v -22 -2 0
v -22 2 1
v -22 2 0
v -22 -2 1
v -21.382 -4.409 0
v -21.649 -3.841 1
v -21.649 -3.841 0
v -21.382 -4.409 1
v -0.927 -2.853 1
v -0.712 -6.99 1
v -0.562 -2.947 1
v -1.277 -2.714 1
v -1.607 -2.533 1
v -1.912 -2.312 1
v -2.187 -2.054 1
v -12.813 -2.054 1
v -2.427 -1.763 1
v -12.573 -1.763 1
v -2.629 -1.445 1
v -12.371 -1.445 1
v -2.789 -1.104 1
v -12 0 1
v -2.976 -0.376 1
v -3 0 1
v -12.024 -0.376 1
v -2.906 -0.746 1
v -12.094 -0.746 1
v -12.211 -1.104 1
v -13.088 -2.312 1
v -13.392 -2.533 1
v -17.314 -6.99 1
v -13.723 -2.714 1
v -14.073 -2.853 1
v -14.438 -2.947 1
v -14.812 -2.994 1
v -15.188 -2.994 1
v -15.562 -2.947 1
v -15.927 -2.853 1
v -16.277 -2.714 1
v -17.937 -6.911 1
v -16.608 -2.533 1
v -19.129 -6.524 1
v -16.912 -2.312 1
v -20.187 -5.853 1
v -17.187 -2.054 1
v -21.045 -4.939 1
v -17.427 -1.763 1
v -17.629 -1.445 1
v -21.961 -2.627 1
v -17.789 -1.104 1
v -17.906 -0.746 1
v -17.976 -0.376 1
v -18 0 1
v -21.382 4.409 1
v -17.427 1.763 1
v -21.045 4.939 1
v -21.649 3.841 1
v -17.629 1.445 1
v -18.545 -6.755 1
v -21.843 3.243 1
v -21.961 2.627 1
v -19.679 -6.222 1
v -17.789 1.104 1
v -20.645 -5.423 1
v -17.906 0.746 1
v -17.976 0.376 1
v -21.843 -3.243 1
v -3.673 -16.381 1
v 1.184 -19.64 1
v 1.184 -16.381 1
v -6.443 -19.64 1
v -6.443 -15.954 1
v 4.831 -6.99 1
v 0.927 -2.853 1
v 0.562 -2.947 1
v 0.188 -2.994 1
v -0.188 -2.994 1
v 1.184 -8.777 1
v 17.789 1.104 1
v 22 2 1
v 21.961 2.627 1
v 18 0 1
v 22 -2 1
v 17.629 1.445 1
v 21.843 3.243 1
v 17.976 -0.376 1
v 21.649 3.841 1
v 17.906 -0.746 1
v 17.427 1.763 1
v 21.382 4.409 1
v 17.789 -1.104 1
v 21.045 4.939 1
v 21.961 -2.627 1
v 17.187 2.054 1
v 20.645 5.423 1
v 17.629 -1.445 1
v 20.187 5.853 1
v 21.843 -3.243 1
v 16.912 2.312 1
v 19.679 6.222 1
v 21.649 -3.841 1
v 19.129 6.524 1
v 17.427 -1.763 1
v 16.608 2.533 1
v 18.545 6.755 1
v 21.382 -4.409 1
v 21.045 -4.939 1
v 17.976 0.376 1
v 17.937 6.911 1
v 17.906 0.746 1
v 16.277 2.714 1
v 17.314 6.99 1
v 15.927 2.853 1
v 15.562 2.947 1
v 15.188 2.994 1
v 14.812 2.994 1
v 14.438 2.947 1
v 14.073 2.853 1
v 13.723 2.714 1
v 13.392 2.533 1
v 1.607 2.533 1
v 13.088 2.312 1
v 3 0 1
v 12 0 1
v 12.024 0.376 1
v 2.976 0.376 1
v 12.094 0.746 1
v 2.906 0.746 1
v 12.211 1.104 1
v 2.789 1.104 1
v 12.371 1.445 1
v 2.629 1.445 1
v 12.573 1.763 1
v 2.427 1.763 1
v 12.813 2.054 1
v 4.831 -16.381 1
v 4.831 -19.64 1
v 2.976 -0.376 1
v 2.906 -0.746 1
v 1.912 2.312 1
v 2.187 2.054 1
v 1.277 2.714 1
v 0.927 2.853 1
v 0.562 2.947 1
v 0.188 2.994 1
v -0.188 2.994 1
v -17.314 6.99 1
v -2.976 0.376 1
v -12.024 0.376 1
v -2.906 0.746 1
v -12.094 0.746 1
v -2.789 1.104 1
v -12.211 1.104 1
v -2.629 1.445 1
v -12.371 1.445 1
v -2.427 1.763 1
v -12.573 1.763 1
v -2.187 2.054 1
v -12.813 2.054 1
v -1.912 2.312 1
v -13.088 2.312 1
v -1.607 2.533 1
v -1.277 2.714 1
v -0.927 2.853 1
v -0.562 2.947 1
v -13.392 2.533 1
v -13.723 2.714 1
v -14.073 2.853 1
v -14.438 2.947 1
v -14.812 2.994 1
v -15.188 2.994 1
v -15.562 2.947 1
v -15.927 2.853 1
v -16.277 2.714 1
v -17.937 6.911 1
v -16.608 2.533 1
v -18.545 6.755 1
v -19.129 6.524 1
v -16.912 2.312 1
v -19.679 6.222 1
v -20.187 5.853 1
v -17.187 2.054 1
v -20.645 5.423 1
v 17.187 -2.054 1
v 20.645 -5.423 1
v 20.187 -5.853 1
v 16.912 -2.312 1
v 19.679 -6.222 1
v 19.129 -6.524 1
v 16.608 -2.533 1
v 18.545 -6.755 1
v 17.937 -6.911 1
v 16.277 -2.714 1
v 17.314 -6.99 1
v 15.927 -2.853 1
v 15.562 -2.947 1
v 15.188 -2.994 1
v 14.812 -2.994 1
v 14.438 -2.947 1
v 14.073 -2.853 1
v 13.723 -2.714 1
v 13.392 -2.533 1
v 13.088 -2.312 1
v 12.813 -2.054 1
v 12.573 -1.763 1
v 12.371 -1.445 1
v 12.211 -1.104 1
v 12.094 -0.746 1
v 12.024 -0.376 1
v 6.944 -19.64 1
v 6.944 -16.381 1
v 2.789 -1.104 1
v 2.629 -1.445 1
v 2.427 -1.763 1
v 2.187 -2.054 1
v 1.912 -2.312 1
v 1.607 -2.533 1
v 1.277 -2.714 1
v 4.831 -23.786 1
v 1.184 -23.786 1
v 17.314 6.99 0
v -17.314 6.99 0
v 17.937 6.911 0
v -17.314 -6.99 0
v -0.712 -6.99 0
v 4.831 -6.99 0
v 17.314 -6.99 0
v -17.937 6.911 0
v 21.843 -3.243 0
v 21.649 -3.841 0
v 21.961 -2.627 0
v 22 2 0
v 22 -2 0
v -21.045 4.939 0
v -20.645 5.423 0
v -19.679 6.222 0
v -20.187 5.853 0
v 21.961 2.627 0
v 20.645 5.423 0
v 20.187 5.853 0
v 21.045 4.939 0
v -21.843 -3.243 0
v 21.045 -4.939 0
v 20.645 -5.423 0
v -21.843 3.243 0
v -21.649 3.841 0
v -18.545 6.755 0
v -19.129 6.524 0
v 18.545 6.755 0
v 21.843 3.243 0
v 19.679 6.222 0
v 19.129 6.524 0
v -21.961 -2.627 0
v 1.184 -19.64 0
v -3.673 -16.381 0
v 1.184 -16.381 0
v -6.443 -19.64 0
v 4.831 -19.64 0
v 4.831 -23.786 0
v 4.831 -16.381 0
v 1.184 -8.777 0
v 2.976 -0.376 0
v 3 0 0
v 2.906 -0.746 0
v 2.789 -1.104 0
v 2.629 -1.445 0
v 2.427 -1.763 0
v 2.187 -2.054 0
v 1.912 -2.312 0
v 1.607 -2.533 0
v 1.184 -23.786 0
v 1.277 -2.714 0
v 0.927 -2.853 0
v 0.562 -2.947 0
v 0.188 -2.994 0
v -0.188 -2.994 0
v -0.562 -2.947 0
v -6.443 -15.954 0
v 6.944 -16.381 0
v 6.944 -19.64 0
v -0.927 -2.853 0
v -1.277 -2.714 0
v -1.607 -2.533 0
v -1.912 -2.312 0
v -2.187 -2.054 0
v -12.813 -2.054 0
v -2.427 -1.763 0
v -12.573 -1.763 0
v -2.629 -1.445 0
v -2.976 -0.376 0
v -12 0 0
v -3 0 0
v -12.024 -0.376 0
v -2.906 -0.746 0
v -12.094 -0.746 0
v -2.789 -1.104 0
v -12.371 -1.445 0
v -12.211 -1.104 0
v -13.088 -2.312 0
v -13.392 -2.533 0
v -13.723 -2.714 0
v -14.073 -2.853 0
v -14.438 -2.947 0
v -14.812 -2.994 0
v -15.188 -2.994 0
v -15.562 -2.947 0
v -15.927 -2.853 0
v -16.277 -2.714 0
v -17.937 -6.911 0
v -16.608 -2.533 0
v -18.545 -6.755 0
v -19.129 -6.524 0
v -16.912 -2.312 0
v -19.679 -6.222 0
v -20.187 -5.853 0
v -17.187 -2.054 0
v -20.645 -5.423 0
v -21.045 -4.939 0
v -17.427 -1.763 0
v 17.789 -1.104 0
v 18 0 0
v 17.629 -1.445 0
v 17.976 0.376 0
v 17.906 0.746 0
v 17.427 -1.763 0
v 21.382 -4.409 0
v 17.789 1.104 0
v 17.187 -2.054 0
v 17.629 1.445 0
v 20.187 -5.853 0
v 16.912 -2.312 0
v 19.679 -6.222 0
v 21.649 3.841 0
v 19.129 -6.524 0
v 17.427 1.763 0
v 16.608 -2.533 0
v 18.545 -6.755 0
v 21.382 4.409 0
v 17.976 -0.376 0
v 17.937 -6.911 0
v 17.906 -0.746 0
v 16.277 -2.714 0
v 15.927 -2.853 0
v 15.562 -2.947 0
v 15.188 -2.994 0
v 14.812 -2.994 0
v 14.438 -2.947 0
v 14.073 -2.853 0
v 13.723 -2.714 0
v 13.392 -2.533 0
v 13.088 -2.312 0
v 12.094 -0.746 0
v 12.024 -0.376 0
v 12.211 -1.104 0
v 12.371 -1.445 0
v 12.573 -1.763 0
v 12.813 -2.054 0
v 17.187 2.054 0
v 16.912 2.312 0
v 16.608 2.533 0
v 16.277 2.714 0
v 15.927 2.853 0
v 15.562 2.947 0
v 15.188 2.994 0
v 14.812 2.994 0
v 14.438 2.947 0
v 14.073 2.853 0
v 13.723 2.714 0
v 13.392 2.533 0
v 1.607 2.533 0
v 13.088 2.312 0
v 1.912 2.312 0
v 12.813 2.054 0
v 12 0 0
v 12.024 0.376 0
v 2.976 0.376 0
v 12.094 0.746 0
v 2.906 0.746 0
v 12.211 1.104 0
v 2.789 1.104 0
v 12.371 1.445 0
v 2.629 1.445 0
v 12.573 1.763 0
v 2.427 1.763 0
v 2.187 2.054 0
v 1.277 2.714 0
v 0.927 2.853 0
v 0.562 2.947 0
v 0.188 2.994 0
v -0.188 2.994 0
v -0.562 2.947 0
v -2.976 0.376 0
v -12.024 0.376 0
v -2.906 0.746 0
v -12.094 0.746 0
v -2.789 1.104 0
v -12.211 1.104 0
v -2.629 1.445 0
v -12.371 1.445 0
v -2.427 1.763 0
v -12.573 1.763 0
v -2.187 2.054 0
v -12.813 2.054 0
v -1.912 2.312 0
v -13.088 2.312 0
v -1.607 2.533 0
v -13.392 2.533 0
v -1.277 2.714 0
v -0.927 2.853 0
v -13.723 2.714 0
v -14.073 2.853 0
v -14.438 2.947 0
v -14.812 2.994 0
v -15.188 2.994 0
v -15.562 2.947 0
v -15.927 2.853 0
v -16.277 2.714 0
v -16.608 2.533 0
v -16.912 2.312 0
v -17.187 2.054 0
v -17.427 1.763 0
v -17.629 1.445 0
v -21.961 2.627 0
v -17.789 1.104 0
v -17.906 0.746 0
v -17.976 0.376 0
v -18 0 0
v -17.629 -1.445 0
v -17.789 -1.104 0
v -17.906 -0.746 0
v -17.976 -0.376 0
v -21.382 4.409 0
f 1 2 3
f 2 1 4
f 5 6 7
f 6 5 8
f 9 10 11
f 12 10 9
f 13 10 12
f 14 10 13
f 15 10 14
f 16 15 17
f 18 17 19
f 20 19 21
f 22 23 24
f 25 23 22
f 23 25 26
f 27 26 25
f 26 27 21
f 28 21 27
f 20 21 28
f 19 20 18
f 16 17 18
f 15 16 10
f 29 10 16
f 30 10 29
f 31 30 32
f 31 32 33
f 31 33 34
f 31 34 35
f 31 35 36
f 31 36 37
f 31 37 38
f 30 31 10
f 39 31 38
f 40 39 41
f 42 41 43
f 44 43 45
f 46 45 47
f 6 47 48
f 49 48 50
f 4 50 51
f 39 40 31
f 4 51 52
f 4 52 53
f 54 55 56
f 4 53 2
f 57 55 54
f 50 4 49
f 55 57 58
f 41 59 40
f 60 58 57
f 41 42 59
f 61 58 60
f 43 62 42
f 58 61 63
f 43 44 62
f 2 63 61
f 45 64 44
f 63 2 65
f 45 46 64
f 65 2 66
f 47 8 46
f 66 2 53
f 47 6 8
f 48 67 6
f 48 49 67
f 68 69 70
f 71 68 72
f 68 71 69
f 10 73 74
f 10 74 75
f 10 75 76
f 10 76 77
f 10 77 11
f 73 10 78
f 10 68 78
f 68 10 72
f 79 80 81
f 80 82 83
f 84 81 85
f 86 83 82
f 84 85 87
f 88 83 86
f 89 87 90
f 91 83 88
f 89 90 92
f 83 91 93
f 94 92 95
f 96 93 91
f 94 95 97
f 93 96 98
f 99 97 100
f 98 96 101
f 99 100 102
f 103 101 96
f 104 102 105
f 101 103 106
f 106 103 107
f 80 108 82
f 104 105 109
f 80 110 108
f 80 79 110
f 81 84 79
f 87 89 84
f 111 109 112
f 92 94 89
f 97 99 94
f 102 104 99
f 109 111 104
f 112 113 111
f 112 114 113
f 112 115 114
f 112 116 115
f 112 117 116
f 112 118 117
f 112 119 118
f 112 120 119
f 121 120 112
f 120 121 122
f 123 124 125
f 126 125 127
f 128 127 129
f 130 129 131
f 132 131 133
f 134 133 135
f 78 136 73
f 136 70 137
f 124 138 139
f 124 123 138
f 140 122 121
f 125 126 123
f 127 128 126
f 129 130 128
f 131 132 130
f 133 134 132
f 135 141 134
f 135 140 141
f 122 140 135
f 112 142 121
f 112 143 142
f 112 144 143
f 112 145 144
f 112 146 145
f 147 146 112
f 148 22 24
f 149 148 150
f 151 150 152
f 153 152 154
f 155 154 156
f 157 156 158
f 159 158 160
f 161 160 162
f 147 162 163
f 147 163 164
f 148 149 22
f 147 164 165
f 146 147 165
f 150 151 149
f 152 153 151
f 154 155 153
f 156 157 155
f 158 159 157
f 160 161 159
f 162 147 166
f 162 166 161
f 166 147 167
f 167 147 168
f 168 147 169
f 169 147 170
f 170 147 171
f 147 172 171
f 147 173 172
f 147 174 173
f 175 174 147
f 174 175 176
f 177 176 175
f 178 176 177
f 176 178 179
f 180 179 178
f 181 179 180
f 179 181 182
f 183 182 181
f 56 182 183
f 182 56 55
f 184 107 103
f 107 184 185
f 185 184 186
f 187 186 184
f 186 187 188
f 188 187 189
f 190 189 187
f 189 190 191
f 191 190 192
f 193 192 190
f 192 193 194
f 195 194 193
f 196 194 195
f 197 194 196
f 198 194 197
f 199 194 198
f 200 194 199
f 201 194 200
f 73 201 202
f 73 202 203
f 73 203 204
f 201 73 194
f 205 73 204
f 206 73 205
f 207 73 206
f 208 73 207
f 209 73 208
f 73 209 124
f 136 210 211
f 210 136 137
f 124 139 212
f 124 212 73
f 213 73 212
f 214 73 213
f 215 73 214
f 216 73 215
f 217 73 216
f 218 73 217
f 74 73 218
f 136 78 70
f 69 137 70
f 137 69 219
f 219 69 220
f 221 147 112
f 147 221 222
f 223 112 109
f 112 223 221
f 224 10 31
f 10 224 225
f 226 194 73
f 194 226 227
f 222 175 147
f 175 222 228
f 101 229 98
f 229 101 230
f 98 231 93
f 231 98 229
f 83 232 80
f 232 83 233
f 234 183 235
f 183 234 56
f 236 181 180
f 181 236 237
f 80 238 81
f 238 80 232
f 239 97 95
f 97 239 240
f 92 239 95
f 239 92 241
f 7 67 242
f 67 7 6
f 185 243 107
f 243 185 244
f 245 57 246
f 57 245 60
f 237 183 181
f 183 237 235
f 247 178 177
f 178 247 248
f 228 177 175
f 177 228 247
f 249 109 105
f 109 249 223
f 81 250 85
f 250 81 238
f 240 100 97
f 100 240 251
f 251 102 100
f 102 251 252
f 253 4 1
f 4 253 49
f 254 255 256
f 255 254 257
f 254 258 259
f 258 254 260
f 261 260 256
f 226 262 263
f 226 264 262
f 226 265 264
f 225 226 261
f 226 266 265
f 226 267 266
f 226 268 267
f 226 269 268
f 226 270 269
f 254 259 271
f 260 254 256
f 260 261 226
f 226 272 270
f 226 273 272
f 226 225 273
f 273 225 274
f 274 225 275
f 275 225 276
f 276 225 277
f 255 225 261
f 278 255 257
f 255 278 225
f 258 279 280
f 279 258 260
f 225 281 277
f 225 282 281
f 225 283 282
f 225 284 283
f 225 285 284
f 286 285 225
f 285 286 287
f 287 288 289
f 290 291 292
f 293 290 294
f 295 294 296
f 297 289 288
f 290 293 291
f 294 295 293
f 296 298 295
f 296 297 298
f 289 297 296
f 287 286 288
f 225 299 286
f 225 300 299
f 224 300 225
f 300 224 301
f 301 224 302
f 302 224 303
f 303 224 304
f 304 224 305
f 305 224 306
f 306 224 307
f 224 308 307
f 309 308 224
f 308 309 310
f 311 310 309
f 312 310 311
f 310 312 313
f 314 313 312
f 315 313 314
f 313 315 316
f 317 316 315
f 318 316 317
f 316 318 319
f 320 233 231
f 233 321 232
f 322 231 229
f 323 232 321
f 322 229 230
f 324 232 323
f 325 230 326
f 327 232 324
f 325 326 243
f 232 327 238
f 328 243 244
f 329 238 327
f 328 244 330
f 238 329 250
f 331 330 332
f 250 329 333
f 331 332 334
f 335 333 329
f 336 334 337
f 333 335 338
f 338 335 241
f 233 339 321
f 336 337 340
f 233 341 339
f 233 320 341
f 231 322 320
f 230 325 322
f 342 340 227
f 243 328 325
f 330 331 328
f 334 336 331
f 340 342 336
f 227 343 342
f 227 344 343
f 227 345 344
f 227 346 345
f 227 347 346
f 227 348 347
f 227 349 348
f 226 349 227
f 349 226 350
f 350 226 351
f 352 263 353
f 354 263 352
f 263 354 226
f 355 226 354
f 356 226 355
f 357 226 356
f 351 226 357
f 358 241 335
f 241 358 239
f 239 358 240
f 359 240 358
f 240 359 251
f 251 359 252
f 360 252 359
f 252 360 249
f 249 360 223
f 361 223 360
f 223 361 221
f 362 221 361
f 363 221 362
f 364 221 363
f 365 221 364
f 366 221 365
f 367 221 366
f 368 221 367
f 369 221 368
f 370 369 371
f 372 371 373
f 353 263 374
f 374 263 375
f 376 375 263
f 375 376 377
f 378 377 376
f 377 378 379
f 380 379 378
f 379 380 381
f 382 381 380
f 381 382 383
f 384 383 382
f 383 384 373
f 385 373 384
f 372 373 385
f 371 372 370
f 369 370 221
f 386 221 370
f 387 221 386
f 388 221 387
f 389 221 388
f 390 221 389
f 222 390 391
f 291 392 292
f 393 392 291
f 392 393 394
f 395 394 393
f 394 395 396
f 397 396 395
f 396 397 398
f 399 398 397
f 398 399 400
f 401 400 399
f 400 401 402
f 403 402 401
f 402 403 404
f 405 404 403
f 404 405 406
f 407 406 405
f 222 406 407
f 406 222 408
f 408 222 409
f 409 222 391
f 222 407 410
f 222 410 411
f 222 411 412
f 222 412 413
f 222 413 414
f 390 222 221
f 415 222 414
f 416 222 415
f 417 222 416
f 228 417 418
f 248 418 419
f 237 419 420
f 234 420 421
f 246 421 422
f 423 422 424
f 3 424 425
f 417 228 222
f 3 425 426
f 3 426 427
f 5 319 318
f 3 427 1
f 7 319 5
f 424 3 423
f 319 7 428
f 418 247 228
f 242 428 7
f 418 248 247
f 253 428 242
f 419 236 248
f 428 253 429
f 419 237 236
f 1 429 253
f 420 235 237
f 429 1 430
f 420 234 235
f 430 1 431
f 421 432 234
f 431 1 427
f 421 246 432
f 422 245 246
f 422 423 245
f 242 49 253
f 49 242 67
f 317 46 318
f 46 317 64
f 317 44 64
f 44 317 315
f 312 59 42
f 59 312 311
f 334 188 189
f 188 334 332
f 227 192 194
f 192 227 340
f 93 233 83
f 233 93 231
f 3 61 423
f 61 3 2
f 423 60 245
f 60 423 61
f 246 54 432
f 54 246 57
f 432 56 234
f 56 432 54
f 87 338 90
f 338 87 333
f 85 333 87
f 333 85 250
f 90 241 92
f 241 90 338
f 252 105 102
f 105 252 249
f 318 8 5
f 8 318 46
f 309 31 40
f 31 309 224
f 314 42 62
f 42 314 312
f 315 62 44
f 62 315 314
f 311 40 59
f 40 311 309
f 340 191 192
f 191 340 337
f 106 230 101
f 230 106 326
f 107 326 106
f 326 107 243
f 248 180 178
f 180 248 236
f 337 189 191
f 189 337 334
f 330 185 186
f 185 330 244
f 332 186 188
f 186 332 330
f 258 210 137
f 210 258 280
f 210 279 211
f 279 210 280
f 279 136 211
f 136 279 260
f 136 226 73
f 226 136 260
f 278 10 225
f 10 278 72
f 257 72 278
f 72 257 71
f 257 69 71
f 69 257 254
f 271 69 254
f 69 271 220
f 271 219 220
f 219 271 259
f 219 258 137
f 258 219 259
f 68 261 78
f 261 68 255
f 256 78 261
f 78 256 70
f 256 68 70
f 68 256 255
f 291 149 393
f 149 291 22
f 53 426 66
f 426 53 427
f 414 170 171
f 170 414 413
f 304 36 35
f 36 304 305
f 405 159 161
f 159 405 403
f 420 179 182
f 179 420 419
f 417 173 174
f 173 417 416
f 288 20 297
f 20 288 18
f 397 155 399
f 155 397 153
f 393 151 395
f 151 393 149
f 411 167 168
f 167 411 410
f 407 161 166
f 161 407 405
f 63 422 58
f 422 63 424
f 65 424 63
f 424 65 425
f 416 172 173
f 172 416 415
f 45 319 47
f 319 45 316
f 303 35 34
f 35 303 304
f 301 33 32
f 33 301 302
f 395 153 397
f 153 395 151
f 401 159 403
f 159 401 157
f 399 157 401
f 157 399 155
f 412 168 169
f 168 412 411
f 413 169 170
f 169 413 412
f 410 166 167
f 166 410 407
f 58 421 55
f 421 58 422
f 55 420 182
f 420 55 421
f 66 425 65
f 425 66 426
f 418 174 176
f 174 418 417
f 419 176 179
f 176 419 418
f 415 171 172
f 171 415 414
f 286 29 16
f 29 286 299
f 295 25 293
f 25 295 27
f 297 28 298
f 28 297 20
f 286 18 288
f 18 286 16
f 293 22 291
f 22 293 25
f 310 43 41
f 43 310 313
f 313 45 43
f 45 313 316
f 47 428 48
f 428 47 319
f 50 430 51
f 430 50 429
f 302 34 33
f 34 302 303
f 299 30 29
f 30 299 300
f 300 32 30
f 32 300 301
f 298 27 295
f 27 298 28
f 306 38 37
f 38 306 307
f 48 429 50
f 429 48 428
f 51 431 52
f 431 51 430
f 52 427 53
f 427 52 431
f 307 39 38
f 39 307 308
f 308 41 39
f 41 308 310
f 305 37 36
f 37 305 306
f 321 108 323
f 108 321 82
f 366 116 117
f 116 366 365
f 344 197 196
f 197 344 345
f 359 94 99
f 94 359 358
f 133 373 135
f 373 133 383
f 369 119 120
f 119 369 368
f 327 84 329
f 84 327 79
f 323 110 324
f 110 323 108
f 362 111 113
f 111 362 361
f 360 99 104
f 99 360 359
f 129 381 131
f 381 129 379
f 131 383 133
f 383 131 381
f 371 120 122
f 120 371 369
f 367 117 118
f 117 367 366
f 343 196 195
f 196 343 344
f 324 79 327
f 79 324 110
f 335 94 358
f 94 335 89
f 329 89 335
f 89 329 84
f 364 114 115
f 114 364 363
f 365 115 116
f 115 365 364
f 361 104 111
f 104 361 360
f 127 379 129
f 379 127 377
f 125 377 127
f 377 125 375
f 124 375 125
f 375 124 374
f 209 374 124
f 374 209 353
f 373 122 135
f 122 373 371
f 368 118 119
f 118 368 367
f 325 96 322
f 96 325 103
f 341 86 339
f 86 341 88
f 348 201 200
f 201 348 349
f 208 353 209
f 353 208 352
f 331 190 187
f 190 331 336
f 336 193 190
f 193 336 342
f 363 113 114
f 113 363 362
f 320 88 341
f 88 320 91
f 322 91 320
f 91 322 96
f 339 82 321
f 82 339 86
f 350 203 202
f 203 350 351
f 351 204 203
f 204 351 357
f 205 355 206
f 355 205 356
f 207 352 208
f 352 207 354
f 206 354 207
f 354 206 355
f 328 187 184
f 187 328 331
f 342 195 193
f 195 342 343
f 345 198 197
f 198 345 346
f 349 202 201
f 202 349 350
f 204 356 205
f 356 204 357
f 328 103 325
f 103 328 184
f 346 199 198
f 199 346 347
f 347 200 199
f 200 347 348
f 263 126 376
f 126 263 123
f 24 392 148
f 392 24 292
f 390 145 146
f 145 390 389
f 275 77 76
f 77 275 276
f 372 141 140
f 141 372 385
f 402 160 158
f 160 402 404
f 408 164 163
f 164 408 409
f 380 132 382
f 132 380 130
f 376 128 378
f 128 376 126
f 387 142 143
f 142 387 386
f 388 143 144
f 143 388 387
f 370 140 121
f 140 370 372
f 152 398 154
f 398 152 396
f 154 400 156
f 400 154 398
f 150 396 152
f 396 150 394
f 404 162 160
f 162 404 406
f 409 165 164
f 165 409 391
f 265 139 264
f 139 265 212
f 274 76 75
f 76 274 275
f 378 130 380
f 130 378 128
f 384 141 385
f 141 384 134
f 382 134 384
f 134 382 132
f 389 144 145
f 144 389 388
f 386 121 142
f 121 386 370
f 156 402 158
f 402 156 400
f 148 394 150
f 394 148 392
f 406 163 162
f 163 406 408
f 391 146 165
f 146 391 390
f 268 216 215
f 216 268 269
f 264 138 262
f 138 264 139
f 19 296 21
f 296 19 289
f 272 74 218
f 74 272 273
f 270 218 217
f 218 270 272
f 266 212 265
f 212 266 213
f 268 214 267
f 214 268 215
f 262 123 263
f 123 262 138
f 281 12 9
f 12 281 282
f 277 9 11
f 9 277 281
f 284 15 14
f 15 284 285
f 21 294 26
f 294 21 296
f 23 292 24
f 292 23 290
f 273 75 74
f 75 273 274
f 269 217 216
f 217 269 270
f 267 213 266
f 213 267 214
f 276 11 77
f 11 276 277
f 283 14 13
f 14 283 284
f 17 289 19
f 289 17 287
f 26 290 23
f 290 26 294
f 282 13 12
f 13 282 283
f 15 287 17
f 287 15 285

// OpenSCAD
$fn = 50;


difference() {
	union() {
		translate(v = [0, 0, 0]) {
			rotate(a = [0, 0, 0]) {
				hull() {
					translate(v = [-17.0000000000, 2.0000000000, 0]) {
						rotate(a = [0, 0, 0]) {
							translate(v = [0, 0, 0]) {
								rotate(a = [0, 0, 0]) {
									cylinder(h = 1, r = 5);
								}
							}
						}
					}
					translate(v = [17.0000000000, 2.0000000000, 0]) {
						rotate(a = [0, 0, 0]) {
							translate(v = [0, 0, 0]) {
								rotate(a = [0, 0, 0]) {
									cylinder(h = 1, r = 5);
								}
							}
						}
					}
					translate(v = [-17.0000000000, -2.0000000000, 0]) {
						rotate(a = [0, 0, 0]) {
							translate(v = [0, 0, 0]) {
								rotate(a = [0, 0, 0]) {
									cylinder(h = 1, r = 5);
								}
							}
						}
					}
					translate(v = [17.0000000000, -2.0000000000, 0]) {
						rotate(a = [0, 0, 0]) {
							translate(v = [0, 0, 0]) {
								rotate(a = [0, 0, 0]) {
									cylinder(h = 1, r = 5);
								}
							}
						}
					}
				}
			}
		}
		translate(v = [0, -5, 0]) {
			rotate(a = [0, 0, 0]) {
				linear_extrude(height = 1) {
					text(font = "DejaVu Sans Mono:style=Bold", halign = "center", size = 19.0000000000, text = "4", valign = "top");
				}
			}
		}
	}
	union() {
		translate(v = [-15.0000000000, 0.0000000000, -125.0000000000]) {
			rotate(a = [0, 0, 0]) {
				cylinder(h = 250, r = 3.0000000000);
			}
		}
		translate(v = [15.0000000000, 0.0000000000, -125.0000000000]) {
			rotate(a = [0, 0, 0]) {
				cylinder(h = 250, r = 3.0000000000);
			}
		}
		translate(v = [15.0000000000, 0.0000000000, -125.0000000000]) {
			rotate(a = [0, 0, 0]) {
				cylinder(h = 250, r = 3.0000000000);
			}
		}
		translate(v = [0, 0, -125.0000000000]) {
			rotate(a = [0, 0, 0]) {
				cylinder(h = 250, r = 3.0000000000);
			}
		}
	}
}
